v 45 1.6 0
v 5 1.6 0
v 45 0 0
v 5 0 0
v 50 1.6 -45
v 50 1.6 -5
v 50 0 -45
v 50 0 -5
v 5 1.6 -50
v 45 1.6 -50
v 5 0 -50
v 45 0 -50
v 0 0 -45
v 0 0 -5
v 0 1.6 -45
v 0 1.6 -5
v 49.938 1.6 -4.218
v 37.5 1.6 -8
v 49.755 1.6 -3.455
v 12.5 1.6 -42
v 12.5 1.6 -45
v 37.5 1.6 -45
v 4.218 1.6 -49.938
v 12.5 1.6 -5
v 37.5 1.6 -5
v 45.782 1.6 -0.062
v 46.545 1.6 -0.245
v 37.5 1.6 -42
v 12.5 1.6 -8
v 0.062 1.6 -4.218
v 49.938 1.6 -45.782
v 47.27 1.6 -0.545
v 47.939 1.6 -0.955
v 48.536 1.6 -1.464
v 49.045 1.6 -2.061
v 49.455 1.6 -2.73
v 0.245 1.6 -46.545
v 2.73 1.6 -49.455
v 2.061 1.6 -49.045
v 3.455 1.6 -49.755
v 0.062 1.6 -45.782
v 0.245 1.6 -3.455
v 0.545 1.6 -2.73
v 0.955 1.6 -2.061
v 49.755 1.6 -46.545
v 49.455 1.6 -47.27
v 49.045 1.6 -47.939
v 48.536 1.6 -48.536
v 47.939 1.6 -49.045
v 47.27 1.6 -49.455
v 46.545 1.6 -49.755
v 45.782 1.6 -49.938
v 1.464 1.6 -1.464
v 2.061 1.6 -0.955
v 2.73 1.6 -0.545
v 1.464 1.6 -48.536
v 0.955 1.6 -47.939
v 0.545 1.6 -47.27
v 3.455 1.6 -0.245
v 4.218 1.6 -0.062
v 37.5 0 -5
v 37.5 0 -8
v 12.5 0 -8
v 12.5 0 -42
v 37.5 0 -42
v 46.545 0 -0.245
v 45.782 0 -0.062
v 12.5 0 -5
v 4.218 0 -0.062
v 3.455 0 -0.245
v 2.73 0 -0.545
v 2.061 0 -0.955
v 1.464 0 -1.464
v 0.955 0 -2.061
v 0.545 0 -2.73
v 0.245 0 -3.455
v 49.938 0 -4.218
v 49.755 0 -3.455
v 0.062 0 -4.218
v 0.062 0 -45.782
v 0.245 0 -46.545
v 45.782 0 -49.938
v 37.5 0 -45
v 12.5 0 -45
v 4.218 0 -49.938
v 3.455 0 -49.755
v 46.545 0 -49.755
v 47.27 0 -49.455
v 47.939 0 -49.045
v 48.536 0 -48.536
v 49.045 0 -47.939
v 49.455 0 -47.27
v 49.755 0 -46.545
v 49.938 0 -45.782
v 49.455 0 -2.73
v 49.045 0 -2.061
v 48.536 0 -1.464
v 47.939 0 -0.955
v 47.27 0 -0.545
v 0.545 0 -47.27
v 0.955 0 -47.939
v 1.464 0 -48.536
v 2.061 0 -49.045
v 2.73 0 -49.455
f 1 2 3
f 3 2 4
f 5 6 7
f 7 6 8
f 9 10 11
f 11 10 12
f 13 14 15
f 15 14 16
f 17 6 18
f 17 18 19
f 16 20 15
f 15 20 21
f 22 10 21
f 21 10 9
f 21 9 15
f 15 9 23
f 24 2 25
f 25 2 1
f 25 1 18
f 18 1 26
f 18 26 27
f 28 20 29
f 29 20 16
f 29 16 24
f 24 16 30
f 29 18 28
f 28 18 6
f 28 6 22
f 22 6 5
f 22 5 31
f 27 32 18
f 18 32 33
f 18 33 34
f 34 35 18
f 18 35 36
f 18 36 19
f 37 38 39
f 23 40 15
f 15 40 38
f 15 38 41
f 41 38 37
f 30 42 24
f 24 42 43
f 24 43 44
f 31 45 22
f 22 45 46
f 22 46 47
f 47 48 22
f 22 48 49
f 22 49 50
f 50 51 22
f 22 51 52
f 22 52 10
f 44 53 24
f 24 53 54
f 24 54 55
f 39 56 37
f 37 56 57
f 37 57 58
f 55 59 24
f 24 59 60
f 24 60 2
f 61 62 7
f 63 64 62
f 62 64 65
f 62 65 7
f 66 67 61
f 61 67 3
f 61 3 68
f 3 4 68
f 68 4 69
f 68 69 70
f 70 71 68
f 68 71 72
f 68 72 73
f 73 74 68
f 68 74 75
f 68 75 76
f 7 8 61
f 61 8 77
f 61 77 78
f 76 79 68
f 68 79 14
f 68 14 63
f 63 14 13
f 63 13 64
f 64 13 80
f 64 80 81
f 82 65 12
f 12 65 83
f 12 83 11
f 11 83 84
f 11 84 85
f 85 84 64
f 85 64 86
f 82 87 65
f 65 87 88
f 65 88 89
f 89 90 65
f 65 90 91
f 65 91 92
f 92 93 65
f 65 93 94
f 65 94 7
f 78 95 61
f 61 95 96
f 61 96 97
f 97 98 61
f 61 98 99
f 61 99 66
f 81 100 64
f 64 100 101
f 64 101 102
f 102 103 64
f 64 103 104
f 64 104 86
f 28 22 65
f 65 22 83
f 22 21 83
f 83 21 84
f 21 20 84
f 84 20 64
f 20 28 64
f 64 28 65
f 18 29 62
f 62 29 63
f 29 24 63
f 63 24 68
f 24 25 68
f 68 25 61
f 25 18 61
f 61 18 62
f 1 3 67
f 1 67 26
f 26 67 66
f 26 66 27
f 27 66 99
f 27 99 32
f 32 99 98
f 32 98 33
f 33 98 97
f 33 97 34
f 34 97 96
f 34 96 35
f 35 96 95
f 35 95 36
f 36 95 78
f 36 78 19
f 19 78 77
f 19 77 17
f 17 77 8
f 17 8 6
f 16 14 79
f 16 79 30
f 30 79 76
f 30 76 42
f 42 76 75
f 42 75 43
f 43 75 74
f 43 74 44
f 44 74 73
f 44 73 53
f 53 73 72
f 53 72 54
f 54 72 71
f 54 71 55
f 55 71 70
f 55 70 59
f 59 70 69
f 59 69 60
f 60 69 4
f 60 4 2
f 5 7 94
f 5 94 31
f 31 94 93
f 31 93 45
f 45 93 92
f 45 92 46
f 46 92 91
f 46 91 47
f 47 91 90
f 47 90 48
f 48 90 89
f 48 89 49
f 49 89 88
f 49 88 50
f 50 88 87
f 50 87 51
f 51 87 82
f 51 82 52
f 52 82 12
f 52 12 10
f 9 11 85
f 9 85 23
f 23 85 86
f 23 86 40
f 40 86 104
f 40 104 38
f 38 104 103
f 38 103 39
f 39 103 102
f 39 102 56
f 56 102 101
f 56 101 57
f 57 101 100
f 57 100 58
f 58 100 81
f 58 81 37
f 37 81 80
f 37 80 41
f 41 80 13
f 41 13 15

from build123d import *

# Parameters (mm, degrees)
SKETCH1_W           = 50
SKETCH1_H           = 50
BOSS_EXTRUDE1_DEPTH = 1.6
SKETCH2_W           = 25
SKETCH2_H           = 3
CUT_EXTRUDE1_DEPTH  = 1.6
FILLET1_R           = 5
FILLET2_R           = 5
FILLET3_R           = 5


with BuildPart() as part:
    # Sketch1 → Boss-Extrude1 (new body)
    with BuildSketch(Plane(origin=(0, 0, 0), x_dir=(1, 0, 0), z_dir=(0, 1, 0))):
        with Locations((25, 25)):
            Rectangle(SKETCH1_W, SKETCH1_H)
    extrude(amount=BOSS_EXTRUDE1_DEPTH)

    # Sketch2 → Cut-Extrude1 (cut)
    with BuildSketch(Plane.XZ):
        with Locations((25, -6.5)):
            Rectangle(SKETCH2_W, SKETCH2_H)
        with Locations((25, -43.5)):
            Rectangle(SKETCH2_W, SKETCH2_H)
    extrude(amount=-CUT_EXTRUDE1_DEPTH, mode=Mode.SUBTRACT)

    # Fillet1
    fillet1_edges = [part.edges().sort_by_distance(p)[0] for p in [
        (0, 0.8, 0),
        (50, 0.8, 0),
    ]]
    fillet(fillet1_edges, radius=FILLET1_R)

    # Fillet2
    fillet2_edges = [part.edges().sort_by_distance(p)[0] for p in [
        (50, 0.8, -50),
    ]]
    fillet(fillet2_edges, radius=FILLET2_R)

    # Fillet3
    fillet3_edges = [part.edges().sort_by_distance(p)[0] for p in [
        (0, 0.8, -50),
    ]]
    fillet(fillet3_edges, radius=FILLET3_R)


solid = part.part
